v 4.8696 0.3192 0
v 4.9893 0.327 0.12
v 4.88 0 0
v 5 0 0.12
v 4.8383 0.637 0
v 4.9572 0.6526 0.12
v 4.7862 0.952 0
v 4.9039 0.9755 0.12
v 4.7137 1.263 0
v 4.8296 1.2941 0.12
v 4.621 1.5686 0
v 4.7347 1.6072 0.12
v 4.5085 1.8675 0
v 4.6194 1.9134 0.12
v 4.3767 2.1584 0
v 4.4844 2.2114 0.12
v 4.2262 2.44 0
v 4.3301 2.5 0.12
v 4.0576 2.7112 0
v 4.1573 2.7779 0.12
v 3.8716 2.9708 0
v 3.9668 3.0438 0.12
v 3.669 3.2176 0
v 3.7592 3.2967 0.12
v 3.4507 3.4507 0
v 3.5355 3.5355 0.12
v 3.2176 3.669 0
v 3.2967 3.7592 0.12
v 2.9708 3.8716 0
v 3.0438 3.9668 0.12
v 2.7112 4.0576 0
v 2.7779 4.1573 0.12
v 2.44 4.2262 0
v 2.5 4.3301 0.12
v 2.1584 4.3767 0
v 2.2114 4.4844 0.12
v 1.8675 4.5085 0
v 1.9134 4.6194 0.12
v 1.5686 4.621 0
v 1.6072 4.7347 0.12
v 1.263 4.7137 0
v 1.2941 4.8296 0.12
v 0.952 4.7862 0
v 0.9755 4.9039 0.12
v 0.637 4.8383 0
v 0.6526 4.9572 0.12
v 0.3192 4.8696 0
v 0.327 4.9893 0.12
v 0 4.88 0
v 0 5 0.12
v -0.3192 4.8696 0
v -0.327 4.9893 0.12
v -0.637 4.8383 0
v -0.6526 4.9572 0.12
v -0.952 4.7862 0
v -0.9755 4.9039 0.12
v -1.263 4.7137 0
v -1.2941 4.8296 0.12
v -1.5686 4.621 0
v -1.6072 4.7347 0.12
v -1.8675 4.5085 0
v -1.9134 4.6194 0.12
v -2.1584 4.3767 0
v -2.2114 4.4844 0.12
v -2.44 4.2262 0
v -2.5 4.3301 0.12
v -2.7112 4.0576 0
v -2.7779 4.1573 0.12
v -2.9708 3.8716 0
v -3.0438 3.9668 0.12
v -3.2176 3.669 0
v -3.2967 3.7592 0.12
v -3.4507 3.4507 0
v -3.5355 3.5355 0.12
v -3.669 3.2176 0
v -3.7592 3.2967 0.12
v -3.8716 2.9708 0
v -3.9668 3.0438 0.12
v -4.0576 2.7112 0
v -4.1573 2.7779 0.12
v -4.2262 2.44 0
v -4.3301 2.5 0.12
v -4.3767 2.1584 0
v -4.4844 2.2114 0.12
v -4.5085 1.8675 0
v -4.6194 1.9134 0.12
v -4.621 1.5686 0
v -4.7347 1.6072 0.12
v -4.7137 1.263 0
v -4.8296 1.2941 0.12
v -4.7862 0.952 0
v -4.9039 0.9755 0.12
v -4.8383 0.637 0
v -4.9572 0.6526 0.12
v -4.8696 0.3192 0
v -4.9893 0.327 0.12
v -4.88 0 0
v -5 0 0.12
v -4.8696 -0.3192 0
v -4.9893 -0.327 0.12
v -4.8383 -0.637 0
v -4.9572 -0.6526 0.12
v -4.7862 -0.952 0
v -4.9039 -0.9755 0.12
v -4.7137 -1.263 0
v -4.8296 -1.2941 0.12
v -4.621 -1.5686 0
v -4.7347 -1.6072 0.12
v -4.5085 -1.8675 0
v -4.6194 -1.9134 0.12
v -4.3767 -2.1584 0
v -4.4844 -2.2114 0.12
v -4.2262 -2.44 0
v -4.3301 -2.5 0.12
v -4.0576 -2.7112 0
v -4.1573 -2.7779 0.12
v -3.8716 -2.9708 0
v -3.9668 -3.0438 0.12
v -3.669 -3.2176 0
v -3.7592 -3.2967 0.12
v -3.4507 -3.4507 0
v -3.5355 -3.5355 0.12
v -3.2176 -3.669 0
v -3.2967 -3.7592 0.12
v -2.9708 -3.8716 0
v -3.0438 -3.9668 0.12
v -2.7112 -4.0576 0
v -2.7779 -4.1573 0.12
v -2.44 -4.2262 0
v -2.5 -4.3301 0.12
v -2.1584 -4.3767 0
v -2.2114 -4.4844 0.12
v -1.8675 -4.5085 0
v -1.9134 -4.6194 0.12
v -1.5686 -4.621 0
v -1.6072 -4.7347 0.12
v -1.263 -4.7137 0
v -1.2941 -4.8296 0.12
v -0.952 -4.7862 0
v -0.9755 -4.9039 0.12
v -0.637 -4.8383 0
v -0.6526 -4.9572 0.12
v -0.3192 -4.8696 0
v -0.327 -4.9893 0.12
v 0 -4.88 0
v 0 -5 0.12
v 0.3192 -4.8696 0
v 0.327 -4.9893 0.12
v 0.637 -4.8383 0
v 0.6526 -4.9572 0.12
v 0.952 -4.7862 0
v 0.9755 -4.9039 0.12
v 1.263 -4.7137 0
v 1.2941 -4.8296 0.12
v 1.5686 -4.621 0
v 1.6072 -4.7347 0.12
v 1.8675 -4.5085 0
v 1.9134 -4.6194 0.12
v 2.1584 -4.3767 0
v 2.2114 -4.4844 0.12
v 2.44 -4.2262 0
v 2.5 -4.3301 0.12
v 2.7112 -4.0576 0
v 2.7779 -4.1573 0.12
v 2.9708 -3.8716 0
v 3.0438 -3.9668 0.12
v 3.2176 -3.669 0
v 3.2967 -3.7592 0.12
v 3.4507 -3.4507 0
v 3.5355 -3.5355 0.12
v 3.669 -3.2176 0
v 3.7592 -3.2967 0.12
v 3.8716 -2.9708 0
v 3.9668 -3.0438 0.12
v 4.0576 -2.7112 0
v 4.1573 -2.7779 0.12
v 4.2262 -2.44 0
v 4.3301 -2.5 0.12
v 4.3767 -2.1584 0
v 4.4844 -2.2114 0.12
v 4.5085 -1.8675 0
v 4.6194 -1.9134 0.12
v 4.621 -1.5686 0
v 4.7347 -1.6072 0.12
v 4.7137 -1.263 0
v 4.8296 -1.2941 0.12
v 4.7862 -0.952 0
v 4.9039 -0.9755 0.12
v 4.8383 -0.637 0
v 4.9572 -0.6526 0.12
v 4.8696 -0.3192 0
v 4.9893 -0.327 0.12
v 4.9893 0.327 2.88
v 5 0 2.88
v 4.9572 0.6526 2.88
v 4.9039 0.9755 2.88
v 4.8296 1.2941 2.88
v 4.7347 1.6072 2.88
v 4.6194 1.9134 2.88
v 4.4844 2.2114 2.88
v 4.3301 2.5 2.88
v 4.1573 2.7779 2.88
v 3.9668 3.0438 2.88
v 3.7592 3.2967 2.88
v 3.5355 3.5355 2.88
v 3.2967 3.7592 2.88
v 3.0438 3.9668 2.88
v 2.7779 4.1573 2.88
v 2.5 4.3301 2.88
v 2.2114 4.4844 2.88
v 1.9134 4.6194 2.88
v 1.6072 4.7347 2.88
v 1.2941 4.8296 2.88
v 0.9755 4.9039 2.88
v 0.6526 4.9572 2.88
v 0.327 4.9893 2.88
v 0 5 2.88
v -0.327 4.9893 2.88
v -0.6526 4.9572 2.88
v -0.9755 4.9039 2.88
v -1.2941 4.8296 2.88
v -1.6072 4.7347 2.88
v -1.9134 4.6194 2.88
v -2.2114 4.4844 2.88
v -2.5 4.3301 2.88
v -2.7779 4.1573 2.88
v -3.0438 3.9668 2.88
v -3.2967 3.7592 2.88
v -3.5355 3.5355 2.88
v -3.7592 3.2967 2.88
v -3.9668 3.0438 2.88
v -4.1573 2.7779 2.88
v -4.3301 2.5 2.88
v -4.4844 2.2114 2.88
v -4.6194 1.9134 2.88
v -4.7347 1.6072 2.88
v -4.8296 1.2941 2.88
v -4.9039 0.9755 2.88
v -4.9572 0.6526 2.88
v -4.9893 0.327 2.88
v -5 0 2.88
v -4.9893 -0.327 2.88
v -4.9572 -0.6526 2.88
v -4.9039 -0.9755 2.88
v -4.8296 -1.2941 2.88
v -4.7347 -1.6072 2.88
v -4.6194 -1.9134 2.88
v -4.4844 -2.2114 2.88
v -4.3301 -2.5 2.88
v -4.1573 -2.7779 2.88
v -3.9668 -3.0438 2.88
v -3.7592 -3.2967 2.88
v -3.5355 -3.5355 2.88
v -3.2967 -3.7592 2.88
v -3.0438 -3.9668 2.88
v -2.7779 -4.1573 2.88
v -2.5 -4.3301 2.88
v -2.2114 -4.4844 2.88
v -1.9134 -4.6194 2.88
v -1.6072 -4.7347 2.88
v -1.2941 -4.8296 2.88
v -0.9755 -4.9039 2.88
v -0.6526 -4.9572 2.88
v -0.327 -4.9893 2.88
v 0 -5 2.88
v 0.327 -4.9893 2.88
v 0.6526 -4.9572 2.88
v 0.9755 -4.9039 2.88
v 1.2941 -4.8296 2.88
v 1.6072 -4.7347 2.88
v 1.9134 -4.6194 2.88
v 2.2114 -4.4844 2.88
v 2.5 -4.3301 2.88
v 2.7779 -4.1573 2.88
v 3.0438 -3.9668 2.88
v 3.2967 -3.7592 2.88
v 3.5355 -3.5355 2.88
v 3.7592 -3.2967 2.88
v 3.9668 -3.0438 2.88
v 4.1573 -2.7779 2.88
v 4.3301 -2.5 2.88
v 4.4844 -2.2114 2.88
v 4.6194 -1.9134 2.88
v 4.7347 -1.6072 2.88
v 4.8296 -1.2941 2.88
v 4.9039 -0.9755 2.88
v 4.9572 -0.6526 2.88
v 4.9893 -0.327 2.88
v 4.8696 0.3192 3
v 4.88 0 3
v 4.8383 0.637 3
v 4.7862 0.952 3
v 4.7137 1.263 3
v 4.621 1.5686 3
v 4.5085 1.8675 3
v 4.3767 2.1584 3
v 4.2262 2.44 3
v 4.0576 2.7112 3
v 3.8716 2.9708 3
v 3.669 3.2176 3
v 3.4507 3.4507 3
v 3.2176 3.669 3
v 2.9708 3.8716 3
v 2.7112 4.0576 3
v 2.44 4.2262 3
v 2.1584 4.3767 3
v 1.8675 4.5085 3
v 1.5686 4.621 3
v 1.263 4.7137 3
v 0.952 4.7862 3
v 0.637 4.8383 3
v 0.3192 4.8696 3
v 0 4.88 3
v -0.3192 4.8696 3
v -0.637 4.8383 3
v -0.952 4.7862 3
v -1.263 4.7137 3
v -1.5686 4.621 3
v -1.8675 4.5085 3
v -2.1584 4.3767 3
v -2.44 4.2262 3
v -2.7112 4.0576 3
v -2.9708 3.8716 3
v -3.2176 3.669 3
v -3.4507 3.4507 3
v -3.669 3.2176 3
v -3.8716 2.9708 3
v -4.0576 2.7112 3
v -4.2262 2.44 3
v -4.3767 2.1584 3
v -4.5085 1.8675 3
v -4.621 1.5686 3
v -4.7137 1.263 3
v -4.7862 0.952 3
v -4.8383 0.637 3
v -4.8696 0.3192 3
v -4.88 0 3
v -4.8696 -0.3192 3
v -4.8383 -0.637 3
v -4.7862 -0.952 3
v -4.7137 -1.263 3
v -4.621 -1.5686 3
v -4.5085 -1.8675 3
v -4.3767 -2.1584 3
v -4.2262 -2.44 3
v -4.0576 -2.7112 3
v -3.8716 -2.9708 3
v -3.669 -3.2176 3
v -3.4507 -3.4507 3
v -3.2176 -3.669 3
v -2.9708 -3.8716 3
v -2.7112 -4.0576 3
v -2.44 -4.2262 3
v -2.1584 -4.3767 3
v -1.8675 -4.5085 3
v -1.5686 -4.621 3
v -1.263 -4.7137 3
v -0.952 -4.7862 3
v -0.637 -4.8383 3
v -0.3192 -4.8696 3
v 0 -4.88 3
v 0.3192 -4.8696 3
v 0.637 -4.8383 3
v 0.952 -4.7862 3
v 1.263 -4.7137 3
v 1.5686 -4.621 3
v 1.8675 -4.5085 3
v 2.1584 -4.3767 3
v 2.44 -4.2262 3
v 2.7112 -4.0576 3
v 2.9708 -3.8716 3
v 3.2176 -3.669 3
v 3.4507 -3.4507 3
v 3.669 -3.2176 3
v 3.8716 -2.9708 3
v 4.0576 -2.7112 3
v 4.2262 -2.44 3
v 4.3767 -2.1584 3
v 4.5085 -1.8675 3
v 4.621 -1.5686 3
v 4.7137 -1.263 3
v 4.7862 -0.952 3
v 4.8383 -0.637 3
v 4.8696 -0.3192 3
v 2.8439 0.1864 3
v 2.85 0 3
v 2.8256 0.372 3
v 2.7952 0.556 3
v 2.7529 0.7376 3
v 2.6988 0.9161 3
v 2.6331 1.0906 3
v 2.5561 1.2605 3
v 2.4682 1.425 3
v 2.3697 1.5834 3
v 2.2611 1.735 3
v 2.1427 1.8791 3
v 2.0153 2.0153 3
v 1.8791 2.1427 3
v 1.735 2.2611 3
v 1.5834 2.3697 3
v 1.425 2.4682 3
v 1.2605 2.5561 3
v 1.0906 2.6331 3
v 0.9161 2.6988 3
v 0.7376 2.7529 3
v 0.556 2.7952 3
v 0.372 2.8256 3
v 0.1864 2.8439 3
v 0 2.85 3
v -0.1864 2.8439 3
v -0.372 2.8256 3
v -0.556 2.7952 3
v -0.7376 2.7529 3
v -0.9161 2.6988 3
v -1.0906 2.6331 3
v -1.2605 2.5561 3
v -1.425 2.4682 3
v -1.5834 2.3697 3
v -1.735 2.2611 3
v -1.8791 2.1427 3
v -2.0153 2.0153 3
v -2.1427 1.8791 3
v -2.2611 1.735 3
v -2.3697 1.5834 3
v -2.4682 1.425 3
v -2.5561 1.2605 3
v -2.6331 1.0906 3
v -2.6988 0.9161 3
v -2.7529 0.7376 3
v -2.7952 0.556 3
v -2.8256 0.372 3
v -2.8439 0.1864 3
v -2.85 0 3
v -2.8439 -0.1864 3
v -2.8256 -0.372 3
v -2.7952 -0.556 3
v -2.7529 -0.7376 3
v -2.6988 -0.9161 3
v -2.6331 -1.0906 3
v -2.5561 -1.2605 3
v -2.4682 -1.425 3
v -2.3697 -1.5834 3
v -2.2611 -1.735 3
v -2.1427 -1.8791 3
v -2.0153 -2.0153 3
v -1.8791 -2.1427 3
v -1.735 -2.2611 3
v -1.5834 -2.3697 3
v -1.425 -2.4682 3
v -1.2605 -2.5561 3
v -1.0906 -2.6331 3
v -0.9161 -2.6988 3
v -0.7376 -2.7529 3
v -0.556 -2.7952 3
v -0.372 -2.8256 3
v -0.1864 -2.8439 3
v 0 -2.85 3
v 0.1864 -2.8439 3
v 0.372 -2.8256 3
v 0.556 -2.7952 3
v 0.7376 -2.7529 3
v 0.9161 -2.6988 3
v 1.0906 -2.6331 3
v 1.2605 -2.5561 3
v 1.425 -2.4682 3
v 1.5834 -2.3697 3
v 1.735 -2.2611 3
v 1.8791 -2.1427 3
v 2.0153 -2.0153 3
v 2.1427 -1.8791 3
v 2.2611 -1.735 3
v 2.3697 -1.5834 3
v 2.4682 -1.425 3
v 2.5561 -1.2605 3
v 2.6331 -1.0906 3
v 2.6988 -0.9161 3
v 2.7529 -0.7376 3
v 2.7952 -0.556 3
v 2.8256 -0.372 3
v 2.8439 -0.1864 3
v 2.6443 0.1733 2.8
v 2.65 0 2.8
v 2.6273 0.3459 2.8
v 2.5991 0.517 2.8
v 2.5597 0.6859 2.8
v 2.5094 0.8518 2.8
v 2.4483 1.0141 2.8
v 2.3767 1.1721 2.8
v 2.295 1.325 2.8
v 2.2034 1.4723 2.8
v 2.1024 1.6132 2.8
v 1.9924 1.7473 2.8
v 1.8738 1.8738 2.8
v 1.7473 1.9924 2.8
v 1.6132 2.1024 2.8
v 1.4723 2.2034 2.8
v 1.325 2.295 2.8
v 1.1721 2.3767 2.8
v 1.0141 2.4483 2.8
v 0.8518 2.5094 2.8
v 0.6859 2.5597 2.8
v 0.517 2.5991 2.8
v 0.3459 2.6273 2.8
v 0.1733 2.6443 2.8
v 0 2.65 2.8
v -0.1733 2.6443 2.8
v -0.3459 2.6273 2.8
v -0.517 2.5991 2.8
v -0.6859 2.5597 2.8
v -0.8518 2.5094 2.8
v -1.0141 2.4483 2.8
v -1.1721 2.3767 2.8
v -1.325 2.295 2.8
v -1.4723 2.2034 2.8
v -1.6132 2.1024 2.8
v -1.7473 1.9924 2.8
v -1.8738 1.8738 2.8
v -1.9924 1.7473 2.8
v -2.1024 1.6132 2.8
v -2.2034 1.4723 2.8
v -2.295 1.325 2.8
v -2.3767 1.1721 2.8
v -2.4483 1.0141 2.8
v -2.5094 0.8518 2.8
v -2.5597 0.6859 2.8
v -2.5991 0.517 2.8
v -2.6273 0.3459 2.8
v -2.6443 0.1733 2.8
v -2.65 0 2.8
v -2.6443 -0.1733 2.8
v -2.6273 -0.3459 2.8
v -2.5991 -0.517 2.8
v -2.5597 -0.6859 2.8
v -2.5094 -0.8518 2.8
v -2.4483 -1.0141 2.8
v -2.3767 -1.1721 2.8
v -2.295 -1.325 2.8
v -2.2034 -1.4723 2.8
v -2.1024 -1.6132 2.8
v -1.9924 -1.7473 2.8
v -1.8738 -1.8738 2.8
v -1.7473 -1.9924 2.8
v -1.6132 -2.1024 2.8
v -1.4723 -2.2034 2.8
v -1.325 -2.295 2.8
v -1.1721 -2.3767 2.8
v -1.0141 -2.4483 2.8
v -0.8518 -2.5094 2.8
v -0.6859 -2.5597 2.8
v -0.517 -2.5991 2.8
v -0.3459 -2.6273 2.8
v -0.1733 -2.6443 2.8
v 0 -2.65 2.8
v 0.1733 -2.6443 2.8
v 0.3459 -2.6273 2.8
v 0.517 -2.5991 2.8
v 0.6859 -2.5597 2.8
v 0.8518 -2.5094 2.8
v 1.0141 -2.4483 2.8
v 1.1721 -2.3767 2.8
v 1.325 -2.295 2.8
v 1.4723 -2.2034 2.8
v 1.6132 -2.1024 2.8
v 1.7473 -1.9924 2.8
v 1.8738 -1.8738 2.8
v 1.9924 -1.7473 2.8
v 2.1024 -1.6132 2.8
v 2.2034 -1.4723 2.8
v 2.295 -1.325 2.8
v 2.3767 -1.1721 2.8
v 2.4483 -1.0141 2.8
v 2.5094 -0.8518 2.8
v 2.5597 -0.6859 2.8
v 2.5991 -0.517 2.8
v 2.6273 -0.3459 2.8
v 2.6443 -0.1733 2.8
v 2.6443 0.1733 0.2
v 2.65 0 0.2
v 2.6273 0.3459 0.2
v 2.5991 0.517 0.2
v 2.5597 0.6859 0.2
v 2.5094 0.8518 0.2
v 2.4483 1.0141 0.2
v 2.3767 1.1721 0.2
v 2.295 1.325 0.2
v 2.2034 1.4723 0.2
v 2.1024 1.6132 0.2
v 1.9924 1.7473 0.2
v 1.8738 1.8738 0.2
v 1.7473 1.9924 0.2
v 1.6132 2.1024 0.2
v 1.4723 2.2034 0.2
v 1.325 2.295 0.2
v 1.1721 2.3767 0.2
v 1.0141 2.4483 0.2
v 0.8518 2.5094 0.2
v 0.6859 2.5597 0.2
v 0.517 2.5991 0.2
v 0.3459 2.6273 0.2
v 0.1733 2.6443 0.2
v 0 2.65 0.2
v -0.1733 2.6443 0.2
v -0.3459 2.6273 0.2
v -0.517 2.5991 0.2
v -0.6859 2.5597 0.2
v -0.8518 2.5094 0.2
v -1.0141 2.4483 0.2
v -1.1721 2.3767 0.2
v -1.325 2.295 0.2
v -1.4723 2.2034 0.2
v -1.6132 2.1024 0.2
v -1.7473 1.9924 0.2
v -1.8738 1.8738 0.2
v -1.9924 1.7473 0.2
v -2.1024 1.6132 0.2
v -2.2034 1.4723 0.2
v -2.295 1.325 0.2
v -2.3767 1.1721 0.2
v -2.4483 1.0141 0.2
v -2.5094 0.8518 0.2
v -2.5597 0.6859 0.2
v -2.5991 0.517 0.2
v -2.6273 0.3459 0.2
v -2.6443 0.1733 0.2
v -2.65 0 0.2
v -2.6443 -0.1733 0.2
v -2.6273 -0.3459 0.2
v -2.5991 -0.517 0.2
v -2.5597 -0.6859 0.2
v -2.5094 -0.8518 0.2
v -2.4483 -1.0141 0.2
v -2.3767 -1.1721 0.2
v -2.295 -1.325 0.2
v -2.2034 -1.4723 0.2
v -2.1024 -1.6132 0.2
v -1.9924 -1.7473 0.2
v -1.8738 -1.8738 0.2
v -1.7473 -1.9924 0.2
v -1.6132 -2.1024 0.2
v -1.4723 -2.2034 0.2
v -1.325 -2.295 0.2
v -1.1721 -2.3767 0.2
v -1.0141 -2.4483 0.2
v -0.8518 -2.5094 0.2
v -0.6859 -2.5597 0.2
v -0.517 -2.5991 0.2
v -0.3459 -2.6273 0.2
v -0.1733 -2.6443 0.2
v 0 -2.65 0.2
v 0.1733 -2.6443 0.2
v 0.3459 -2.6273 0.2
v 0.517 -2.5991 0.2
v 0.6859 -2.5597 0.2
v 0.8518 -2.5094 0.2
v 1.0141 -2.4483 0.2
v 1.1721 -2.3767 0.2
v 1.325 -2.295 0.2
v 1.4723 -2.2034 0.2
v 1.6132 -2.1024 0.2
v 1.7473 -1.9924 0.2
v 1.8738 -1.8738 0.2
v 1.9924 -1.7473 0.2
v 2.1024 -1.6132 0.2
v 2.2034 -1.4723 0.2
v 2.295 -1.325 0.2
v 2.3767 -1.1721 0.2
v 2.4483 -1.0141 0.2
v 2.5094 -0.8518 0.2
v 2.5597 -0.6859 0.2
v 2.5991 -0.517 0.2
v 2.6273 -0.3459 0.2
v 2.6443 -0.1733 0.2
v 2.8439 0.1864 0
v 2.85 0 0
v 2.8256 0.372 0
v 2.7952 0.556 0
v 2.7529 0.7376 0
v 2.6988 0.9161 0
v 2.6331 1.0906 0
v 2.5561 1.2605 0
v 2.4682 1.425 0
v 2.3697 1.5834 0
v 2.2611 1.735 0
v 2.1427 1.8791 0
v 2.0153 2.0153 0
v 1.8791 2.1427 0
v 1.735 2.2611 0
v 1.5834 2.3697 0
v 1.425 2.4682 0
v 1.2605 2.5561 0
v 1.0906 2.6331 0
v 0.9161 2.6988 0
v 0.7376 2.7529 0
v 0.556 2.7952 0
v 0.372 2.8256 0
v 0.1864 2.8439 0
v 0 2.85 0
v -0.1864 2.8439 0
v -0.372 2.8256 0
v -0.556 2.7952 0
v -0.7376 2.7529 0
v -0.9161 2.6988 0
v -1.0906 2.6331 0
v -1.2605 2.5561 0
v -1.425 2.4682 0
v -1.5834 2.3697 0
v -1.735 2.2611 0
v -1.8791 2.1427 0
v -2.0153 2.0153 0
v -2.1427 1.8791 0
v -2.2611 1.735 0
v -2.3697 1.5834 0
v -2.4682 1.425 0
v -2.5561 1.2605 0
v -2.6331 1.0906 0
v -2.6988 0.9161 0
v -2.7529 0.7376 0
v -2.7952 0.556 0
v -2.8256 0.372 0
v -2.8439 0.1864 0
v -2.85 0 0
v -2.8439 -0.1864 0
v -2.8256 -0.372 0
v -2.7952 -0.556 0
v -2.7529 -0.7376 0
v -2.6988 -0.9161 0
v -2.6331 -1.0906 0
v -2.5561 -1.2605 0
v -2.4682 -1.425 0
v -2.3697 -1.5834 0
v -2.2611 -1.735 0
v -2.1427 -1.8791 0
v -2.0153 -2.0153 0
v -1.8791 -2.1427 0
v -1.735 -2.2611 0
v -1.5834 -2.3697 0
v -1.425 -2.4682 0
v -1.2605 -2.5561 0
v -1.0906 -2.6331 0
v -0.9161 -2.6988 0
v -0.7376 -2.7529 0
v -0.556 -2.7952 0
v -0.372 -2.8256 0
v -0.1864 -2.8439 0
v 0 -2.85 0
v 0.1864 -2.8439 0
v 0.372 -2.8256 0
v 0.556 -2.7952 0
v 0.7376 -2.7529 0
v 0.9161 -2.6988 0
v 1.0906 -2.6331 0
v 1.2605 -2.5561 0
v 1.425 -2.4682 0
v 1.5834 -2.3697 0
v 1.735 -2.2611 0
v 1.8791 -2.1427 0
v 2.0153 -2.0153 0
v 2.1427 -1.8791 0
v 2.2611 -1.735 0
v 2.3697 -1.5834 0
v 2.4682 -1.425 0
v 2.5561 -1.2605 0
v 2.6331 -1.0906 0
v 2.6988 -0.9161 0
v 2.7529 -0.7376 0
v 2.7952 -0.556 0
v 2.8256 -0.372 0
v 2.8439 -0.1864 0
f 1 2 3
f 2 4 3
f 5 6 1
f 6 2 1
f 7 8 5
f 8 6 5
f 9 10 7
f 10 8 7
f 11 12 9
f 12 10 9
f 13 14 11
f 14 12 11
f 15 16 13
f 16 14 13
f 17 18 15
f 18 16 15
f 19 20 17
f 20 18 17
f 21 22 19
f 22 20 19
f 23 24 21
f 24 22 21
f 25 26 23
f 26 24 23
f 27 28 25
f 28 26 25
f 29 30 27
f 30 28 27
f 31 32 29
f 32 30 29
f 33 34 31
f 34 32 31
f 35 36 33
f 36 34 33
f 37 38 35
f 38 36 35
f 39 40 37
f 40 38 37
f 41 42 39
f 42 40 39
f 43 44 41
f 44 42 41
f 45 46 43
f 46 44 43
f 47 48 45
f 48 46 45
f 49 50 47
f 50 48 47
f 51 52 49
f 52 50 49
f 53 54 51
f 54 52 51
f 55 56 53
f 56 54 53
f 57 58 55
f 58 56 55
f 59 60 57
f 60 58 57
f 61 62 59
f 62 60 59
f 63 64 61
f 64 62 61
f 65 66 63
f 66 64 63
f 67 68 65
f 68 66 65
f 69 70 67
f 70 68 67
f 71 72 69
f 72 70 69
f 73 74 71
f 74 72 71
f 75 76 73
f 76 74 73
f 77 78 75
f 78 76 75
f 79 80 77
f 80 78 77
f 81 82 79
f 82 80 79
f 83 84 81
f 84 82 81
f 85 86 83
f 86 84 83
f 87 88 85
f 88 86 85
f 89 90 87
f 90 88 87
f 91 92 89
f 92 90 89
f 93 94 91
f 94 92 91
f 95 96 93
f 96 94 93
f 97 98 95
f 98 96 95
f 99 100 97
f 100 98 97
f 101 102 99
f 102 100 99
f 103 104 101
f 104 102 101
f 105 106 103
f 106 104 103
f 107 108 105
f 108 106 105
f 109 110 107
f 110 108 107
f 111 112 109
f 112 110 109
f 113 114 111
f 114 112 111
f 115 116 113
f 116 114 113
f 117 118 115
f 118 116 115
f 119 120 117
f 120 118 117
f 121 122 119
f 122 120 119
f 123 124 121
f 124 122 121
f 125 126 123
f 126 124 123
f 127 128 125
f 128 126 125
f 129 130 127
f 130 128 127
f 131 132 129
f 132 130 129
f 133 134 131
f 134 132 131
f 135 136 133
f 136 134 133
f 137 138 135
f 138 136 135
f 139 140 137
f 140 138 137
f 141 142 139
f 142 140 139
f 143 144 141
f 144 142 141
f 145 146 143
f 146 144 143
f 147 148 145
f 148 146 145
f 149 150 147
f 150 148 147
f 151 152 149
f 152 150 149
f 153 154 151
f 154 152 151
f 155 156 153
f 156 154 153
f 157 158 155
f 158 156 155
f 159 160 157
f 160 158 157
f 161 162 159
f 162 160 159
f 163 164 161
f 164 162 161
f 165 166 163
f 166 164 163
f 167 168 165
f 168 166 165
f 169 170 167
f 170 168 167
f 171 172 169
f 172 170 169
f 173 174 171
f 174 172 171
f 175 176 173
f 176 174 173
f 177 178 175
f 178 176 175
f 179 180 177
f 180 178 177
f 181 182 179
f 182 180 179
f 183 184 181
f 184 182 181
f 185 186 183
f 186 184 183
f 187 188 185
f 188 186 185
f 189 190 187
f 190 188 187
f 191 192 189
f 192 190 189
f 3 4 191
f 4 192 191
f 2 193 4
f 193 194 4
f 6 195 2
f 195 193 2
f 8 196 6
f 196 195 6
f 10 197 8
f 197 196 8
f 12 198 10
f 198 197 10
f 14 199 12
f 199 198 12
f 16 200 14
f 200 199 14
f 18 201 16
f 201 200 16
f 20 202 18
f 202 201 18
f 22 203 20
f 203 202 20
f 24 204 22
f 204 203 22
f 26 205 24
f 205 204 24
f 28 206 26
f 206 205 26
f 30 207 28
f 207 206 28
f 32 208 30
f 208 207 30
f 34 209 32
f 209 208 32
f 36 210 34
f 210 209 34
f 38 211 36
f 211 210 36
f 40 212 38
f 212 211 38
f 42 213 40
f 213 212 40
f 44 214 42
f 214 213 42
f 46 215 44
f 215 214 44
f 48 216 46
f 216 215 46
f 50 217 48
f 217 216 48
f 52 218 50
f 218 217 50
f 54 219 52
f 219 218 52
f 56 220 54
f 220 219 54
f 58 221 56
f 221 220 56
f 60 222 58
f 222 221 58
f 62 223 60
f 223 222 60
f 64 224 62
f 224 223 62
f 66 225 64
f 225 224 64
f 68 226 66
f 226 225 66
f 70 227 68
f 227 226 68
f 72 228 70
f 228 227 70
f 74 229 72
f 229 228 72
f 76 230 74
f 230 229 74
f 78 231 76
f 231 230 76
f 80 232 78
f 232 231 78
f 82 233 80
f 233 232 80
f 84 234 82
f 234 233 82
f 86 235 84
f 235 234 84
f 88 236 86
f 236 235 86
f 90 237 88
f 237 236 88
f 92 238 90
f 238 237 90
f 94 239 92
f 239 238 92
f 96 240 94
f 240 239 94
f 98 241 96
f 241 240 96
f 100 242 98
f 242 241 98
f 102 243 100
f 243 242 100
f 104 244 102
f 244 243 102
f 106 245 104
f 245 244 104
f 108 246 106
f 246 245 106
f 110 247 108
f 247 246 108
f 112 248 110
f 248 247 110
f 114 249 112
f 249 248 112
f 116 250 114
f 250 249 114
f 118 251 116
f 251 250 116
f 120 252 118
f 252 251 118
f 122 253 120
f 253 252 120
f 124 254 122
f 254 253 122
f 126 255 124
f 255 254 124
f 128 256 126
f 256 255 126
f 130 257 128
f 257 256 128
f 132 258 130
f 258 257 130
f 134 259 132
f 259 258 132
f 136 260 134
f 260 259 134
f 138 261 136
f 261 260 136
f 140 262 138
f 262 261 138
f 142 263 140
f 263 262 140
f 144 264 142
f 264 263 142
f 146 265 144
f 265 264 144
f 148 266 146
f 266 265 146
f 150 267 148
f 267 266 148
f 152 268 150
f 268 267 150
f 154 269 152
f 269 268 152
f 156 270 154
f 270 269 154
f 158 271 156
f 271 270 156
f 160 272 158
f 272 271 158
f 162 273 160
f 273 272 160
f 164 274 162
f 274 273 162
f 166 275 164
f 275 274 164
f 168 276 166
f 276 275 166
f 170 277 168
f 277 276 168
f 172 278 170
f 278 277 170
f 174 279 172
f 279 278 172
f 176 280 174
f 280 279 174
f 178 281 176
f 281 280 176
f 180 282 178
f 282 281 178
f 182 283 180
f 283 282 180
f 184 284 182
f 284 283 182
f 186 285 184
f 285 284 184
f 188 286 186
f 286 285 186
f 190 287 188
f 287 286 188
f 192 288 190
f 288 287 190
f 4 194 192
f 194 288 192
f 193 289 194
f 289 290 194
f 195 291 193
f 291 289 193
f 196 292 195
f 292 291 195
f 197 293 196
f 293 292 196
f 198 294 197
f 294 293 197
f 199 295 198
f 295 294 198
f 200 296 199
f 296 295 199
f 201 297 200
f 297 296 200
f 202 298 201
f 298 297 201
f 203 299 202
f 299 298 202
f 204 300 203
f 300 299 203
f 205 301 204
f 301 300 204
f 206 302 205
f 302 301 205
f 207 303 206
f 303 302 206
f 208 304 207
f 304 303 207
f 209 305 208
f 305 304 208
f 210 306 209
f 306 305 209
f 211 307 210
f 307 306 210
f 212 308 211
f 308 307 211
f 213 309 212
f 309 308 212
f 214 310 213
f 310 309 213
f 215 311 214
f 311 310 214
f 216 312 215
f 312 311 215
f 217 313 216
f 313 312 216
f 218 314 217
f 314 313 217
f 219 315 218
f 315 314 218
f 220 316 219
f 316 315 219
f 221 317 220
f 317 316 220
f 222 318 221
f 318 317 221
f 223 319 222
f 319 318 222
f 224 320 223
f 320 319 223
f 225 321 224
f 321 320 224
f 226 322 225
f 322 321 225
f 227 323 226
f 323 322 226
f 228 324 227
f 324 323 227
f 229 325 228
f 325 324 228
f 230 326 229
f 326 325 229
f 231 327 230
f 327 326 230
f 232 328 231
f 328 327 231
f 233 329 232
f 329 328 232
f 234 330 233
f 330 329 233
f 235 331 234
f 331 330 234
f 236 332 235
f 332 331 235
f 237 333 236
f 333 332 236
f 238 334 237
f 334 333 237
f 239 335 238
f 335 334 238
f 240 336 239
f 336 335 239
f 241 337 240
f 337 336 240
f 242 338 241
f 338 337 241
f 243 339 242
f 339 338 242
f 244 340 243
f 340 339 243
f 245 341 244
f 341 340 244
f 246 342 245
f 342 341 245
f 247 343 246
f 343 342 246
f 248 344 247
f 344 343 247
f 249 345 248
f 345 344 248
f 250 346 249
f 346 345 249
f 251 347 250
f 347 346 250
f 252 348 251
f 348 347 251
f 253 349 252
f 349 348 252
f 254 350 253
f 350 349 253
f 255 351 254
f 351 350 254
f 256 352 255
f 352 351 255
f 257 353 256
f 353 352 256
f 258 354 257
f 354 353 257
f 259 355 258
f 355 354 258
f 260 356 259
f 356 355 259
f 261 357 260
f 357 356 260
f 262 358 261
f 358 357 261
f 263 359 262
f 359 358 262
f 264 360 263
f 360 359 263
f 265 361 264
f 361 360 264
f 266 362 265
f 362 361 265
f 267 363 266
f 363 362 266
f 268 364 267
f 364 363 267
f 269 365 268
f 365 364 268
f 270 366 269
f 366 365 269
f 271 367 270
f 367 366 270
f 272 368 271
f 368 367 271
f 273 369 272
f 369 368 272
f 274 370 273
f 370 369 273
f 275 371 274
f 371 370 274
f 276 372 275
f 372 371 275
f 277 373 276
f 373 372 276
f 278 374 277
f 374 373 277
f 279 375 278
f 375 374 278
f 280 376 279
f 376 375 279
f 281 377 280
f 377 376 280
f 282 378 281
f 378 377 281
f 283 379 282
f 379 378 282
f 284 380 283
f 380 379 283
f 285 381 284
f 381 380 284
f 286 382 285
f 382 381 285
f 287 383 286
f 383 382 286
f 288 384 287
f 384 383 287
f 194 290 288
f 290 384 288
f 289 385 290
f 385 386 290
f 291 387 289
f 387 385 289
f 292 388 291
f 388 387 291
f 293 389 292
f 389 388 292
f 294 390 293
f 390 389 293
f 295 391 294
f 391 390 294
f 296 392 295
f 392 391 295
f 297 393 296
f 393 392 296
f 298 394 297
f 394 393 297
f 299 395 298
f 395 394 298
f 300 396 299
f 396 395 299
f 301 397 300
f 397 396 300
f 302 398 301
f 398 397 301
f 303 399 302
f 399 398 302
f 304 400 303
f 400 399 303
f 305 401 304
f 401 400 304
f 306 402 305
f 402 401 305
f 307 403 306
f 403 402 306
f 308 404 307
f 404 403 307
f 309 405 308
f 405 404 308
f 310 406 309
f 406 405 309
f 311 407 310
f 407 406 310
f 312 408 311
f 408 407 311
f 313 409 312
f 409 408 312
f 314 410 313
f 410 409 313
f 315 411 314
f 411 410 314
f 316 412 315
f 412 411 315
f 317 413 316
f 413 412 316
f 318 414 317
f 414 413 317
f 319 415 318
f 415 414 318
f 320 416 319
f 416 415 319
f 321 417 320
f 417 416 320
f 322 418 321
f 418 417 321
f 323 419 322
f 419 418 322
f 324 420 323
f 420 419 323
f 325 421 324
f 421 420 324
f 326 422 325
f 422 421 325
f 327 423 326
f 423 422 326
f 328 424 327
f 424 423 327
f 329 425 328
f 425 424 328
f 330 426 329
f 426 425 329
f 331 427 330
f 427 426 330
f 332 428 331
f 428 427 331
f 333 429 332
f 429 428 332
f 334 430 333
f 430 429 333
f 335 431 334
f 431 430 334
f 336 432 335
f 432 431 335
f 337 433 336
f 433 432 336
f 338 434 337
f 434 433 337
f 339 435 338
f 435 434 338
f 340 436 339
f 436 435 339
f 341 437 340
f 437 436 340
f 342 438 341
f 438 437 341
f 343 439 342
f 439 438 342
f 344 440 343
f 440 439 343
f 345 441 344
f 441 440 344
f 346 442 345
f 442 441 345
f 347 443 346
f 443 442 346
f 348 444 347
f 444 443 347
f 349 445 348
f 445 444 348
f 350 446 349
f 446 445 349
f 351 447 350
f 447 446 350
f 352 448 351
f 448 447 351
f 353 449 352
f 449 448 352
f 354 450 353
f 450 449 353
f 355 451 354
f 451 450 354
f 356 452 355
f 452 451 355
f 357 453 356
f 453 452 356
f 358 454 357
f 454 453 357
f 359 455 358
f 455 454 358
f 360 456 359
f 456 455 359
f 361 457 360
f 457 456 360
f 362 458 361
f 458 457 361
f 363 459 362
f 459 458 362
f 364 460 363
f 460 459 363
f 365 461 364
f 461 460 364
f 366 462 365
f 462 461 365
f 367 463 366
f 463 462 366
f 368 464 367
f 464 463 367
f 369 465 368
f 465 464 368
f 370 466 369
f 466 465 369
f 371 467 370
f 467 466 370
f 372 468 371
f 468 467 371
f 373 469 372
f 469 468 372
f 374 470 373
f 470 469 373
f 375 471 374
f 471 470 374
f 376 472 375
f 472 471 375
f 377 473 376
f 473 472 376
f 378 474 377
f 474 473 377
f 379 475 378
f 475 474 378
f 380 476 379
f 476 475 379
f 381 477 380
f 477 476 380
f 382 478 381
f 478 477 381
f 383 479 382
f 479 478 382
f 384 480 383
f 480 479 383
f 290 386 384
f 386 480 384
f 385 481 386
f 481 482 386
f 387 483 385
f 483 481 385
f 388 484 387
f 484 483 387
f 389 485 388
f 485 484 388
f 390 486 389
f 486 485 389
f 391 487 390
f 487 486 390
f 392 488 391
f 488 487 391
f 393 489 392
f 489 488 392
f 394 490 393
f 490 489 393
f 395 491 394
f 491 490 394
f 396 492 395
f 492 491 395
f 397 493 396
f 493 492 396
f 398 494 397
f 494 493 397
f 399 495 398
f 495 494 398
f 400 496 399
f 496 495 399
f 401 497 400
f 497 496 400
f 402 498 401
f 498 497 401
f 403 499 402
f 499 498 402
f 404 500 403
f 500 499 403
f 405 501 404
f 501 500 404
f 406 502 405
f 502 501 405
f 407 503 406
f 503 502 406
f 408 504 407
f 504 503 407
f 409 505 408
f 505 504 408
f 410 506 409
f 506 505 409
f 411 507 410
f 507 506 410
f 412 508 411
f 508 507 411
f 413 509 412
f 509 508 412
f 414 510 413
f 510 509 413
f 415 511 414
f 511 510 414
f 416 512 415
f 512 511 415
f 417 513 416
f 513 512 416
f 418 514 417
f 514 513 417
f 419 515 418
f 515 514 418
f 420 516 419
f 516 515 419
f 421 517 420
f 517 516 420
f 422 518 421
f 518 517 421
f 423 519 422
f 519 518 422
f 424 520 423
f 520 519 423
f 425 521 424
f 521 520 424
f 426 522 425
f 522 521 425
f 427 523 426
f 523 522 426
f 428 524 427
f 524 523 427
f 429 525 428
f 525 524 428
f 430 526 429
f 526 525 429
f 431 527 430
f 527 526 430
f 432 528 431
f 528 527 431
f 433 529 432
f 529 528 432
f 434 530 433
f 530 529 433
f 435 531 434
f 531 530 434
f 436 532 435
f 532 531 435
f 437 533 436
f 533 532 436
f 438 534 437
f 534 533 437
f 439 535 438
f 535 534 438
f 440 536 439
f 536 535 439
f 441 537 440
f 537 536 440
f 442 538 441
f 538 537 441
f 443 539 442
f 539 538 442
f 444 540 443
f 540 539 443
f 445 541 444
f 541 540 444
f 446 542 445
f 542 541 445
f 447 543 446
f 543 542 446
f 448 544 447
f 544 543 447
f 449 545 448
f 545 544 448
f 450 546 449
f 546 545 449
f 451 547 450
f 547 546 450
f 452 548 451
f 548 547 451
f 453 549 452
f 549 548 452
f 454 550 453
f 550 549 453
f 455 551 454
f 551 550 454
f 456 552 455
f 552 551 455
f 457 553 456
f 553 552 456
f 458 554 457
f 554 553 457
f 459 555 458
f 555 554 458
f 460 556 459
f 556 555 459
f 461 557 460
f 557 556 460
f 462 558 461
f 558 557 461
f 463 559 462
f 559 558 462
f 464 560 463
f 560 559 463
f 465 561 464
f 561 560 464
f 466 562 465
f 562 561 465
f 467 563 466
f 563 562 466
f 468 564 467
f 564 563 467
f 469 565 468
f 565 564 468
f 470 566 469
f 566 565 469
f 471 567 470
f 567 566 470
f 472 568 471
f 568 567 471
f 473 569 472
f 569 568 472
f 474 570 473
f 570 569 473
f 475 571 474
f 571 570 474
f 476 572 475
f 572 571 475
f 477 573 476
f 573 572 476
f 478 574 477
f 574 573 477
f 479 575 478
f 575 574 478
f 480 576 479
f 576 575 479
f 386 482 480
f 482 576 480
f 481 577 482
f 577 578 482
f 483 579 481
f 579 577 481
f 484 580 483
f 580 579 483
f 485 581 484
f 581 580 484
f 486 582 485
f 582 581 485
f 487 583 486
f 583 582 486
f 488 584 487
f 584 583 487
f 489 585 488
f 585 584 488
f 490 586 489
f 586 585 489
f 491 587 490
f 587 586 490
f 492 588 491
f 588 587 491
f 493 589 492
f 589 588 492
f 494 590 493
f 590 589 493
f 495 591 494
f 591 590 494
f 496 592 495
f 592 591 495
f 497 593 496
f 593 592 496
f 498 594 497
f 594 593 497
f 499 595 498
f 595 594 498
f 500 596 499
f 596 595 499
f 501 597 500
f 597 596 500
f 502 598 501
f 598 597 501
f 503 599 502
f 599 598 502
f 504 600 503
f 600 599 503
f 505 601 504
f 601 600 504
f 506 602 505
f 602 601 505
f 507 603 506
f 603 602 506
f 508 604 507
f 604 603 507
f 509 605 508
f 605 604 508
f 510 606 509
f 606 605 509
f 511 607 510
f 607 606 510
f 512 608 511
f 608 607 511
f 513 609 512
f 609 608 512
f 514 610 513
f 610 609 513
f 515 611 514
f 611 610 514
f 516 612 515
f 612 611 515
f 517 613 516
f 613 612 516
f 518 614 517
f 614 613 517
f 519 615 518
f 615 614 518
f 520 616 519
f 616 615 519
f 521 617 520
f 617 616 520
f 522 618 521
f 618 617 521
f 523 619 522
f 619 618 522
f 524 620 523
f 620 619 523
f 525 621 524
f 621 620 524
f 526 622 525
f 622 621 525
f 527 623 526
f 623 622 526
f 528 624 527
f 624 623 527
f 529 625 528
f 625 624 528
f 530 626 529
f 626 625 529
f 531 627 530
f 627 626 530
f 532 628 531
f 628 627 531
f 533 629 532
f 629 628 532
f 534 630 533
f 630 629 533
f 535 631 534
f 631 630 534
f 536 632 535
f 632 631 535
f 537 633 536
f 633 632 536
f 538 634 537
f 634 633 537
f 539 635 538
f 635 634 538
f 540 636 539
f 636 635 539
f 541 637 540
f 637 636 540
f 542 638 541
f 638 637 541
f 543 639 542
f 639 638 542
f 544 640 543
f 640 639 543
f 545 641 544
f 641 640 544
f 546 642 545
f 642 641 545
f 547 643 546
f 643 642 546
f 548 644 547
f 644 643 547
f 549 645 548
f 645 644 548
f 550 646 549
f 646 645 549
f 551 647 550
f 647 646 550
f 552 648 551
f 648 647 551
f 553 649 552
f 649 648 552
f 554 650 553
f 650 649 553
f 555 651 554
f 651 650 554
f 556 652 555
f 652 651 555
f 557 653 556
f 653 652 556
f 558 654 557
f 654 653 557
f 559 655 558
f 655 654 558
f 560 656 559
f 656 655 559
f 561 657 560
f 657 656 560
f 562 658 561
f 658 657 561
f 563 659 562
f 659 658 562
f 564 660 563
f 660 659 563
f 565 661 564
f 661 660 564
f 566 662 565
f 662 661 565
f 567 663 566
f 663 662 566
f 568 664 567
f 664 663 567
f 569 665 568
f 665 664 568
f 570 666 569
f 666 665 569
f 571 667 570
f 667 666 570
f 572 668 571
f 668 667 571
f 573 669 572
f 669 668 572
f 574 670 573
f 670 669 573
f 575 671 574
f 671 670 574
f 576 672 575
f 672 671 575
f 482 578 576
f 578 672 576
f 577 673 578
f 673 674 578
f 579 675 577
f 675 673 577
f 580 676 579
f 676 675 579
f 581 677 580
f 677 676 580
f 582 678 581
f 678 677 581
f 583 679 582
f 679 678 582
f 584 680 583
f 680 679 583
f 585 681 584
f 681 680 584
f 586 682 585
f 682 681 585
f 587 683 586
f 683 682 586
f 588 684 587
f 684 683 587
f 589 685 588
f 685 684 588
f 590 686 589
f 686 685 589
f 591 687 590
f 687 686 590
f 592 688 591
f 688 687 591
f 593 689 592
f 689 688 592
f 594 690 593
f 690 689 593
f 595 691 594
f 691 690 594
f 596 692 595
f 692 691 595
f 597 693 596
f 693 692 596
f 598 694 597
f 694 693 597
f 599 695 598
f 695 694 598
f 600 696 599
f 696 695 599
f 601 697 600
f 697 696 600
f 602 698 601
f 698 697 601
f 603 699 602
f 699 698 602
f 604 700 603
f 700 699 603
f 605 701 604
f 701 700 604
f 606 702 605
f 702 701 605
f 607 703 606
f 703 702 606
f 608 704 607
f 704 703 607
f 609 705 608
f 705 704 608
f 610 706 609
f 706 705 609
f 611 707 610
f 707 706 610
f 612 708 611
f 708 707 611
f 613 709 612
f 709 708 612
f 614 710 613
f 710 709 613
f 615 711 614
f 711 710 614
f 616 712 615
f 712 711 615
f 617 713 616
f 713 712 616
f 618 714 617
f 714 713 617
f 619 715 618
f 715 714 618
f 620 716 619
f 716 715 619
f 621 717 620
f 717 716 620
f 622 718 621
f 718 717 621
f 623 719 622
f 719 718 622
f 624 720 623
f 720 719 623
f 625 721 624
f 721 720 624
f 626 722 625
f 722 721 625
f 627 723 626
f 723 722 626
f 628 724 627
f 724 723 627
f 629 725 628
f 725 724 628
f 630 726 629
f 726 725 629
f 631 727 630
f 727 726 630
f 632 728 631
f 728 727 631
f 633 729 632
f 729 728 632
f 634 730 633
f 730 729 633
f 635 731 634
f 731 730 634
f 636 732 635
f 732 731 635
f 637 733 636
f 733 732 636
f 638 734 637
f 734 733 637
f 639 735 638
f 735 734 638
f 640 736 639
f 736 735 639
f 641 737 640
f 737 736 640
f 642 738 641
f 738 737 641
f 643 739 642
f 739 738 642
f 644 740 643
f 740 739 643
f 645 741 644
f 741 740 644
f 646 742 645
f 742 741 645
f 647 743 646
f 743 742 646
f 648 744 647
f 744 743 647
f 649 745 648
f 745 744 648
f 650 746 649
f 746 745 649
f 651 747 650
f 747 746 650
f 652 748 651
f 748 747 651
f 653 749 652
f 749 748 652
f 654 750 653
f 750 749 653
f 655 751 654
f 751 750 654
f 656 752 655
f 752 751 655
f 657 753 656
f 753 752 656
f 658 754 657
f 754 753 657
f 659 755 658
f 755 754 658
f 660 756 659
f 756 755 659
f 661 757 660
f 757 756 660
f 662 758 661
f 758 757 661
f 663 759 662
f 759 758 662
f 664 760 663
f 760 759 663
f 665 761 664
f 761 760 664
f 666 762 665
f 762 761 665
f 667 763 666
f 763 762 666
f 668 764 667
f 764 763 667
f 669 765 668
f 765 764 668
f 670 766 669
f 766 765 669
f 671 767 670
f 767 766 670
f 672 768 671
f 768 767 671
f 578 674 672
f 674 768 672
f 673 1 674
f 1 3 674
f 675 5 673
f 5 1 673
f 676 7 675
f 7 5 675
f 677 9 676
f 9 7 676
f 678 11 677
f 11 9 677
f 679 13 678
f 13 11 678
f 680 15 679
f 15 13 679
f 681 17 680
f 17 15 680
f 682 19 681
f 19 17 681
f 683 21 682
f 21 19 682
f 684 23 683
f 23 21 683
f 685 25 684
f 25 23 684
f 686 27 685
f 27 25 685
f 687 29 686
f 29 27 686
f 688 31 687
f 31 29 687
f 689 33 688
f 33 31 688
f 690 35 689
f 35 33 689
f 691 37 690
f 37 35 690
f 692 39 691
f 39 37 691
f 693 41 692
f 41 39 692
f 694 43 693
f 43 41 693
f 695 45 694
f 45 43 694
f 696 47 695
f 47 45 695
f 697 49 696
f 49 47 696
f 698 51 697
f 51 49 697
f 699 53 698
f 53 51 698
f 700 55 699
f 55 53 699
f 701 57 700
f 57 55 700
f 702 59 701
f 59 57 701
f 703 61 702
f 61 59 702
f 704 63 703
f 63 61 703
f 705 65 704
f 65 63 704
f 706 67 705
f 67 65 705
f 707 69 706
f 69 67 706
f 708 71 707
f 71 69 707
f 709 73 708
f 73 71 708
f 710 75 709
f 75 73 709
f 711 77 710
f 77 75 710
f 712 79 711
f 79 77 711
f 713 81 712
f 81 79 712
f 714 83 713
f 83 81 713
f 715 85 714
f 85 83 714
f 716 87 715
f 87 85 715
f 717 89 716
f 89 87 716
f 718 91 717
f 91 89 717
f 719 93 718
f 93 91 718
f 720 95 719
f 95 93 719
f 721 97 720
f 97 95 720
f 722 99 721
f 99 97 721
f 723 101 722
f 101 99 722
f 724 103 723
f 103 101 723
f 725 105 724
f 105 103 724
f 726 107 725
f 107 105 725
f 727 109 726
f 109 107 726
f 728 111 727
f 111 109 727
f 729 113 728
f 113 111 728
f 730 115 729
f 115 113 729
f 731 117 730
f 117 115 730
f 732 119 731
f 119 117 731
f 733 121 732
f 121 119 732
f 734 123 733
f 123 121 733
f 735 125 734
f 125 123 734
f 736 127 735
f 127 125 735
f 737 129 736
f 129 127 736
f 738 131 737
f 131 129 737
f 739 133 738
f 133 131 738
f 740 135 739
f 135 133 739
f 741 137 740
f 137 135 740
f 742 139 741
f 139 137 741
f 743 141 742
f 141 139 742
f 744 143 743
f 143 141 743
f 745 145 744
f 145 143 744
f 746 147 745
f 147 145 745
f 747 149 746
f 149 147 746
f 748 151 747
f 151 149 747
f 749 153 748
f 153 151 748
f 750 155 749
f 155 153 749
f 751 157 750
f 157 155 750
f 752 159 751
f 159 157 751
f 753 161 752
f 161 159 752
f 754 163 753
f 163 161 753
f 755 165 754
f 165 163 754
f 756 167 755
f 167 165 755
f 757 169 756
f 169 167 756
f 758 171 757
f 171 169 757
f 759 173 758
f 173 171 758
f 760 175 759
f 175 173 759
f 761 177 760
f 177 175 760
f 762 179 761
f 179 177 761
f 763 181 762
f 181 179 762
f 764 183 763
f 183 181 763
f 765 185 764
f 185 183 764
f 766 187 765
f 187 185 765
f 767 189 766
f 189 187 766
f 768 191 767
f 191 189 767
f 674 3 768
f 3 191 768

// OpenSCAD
// OOMP generic catalogue model; units: mm.
// Stud length is additional to body depth. Tapping depths are model assumptions.
variant = "full"; // [full, display]
family = "spacer";
connection_type = "plain";
depth_mm = 3;
stud_length_mm = 0;
tapped_depth_mm = 0;
bore_mm = 5.3;
outer_diameter_mm = 10;
across_flats_mm = 6;
thread_nominal_diameter_mm = 3;
thread_pitch_mm = 0.5;
edge_chamfer_mm = 0.12;
mouth_chamfer_mm = 0.2;
angular_segments = 96;
samples_per_pitch = 16;

// Boundary travels up the outside, then down any tapped/plain bore.
// Equal-height rings at shoulders form the annular shoulder faces.
n = angular_segments;
threaded = family == "standoff";
has_stud = connection_type == "stud_to_tapped" || connection_type == "stud_to_stud";
two_studs = connection_type == "stud_to_stud";
through = !threaded || connection_type == "tapped_to_tapped";
pitch = thread_pitch_mm;
diameter = threaded ? thread_nominal_diameter_mm : bore_mm;
minor = diameter - 5*sqrt(3)*pitch/8;
transition = mouth_chamfer_mm + (threaded ? 5*sqrt(3)*pitch/16 : 0);
tip_chamfer = mouth_chamfer_mm + 17*sqrt(3)*pitch/48;
function sorted(v) = len(v)<=1 ? v : let(p=v[0])
    concat(sorted([for(x=v) if(x<p-1e-8) x]), [p], sorted([for(x=v) if(x>p+1e-8) x]));
function reverse(v) = [for(i=[len(v)-1:-1:0]) v[i]];
function theta(i) = i*360/n;
function fract(x) = x-floor(x);
function phase_distance(i,z) = abs(fract(z/pitch-theta(i)/360+0.5)-0.5);
function thread_r(i,z) = minor/2 + min(5*sqrt(3)*pitch/16,
    max(0,(phase_distance(i,z)-0.125)*pitch*sqrt(3)));
function stud_r(i,z,tip) = min(diameter/2 - (variant=="full" ?
    min(17*sqrt(3)*pitch/48,max(0,(phase_distance(i,z)-0.0625)*pitch*sqrt(3))) : 0),
    diameter/2-tip_chamfer+abs(z-tip));
function body_r(i,z) = (threaded ? across_flats_mm/2/cos(theta(i)%60-30) : outer_diameter_mm/2)
    - max(0,edge_chamfer_mm-min(z,depth_mm-z));
function bore_r(i,z) = max(threaded ? (variant=="full" ? thread_r(i,z) : minor/2) : diameter/2,
    diameter/2+mouth_chamfer_mm-(through ? min(z,depth_mm-z) : depth_mm-z));
function stud_z(a,b,tip) = let(count=variant=="full" ? ceil(stud_length_mm/pitch*samples_per_pitch) : 1)
    sorted(concat([for(i=[0:count]) a+(b-a)*i/count], [tip==a ? tip+tip_chamfer : tip-tip_chamfer]));
body_z = sorted([0,edge_chamfer_mm,depth_mm-edge_chamfer_mm,depth_mm]);
low = through ? 0 : depth_mm-tapped_depth_mm;
count = threaded && variant=="full" ? ceil((depth_mm-low)/pitch*samples_per_pitch) : 1;
bore_z = two_studs ? [] : reverse(sorted(concat(
    [for(i=[0:count]) low+(depth_mm-low)*i/count],
    [depth_mm-mouth_chamfer_mm,depth_mm-transition],
    through ? [mouth_chamfer_mm,transition] : [])));
// Ring descriptors: [height, kind, tip]. Kind: 0 body, 1 stud, 2 bore.
rings = concat(
    has_stud ? [for(z=stud_z(-stud_length_mm,0,-stud_length_mm)) [z,1,-stud_length_mm]] : [],
    [for(z=body_z) [z,0,0]],
    two_studs ? [for(z=stud_z(depth_mm,depth_mm+stud_length_mm,depth_mm+stud_length_mm)) [z,1,depth_mm+stud_length_mm]] : [],
    [for(z=bore_z) [z,2,0]]);
function radius(i,ring) = ring[1]==0 ? body_r(i,ring[0]) :
    ring[1]==1 ? stud_r(i,ring[0],ring[2]) : bore_r(i,ring[0]);
points = concat([for(ring=rings) for(i=[0:n-1])
    [radius(i,ring)*cos(theta(i)),radius(i,ring)*sin(theta(i)),ring[0]]],
    through ? [] : [[0,0,rings[0][0]],[0,0,rings[len(rings)-1][0]]]);
center = len(rings)*n;
last = (len(rings)-1)*n;
// OpenSCAD winding is opposite to STL winding.
faces = concat(
    [for(j=[0:len(rings)-(through ? 1 : 2)]) for(i=[0:n-1]) each
        let(a=j*n+i,b=j*n+(i+1)%n,c=((j+1)%len(rings))*n+(i+1)%n,d=((j+1)%len(rings))*n+i)
        [[a,c,b],[a,d,c]]],
    through ? [] : [for(i=[0:n-1]) each let(k=(i+1)%n)
        [[center,i,k],[center+1,last+k,last+i]]]);
assert(family=="spacer" || family=="standoff");
assert(!threaded || connection_type=="tapped_to_tapped" || has_stud);
assert(depth_mm>0 && diameter>0 && pitch>0);
assert(variant=="full" || variant=="display");
assert(n>=24 && n%12==0 && samples_per_pitch>=8);
assert(mouth_chamfer_mm>0 && mouth_chamfer_mm<depth_mm/2);
assert(edge_chamfer_mm>=0 && edge_chamfer_mm<depth_mm/2);
assert(diameter+4*max(mouth_chamfer_mm,edge_chamfer_mm) < (threaded ? across_flats_mm : outer_diameter_mm));
assert(!has_stud || stud_length_mm>2*mouth_chamfer_mm);
assert(!through || !threaded || 2*transition<depth_mm);
assert(connection_type!="stud_to_tapped" || (tapped_depth_mm>transition && tapped_depth_mm<depth_mm));
color([0.86,0.85,0.81]) polyhedron(points=points,faces=faces,convexity=20);
